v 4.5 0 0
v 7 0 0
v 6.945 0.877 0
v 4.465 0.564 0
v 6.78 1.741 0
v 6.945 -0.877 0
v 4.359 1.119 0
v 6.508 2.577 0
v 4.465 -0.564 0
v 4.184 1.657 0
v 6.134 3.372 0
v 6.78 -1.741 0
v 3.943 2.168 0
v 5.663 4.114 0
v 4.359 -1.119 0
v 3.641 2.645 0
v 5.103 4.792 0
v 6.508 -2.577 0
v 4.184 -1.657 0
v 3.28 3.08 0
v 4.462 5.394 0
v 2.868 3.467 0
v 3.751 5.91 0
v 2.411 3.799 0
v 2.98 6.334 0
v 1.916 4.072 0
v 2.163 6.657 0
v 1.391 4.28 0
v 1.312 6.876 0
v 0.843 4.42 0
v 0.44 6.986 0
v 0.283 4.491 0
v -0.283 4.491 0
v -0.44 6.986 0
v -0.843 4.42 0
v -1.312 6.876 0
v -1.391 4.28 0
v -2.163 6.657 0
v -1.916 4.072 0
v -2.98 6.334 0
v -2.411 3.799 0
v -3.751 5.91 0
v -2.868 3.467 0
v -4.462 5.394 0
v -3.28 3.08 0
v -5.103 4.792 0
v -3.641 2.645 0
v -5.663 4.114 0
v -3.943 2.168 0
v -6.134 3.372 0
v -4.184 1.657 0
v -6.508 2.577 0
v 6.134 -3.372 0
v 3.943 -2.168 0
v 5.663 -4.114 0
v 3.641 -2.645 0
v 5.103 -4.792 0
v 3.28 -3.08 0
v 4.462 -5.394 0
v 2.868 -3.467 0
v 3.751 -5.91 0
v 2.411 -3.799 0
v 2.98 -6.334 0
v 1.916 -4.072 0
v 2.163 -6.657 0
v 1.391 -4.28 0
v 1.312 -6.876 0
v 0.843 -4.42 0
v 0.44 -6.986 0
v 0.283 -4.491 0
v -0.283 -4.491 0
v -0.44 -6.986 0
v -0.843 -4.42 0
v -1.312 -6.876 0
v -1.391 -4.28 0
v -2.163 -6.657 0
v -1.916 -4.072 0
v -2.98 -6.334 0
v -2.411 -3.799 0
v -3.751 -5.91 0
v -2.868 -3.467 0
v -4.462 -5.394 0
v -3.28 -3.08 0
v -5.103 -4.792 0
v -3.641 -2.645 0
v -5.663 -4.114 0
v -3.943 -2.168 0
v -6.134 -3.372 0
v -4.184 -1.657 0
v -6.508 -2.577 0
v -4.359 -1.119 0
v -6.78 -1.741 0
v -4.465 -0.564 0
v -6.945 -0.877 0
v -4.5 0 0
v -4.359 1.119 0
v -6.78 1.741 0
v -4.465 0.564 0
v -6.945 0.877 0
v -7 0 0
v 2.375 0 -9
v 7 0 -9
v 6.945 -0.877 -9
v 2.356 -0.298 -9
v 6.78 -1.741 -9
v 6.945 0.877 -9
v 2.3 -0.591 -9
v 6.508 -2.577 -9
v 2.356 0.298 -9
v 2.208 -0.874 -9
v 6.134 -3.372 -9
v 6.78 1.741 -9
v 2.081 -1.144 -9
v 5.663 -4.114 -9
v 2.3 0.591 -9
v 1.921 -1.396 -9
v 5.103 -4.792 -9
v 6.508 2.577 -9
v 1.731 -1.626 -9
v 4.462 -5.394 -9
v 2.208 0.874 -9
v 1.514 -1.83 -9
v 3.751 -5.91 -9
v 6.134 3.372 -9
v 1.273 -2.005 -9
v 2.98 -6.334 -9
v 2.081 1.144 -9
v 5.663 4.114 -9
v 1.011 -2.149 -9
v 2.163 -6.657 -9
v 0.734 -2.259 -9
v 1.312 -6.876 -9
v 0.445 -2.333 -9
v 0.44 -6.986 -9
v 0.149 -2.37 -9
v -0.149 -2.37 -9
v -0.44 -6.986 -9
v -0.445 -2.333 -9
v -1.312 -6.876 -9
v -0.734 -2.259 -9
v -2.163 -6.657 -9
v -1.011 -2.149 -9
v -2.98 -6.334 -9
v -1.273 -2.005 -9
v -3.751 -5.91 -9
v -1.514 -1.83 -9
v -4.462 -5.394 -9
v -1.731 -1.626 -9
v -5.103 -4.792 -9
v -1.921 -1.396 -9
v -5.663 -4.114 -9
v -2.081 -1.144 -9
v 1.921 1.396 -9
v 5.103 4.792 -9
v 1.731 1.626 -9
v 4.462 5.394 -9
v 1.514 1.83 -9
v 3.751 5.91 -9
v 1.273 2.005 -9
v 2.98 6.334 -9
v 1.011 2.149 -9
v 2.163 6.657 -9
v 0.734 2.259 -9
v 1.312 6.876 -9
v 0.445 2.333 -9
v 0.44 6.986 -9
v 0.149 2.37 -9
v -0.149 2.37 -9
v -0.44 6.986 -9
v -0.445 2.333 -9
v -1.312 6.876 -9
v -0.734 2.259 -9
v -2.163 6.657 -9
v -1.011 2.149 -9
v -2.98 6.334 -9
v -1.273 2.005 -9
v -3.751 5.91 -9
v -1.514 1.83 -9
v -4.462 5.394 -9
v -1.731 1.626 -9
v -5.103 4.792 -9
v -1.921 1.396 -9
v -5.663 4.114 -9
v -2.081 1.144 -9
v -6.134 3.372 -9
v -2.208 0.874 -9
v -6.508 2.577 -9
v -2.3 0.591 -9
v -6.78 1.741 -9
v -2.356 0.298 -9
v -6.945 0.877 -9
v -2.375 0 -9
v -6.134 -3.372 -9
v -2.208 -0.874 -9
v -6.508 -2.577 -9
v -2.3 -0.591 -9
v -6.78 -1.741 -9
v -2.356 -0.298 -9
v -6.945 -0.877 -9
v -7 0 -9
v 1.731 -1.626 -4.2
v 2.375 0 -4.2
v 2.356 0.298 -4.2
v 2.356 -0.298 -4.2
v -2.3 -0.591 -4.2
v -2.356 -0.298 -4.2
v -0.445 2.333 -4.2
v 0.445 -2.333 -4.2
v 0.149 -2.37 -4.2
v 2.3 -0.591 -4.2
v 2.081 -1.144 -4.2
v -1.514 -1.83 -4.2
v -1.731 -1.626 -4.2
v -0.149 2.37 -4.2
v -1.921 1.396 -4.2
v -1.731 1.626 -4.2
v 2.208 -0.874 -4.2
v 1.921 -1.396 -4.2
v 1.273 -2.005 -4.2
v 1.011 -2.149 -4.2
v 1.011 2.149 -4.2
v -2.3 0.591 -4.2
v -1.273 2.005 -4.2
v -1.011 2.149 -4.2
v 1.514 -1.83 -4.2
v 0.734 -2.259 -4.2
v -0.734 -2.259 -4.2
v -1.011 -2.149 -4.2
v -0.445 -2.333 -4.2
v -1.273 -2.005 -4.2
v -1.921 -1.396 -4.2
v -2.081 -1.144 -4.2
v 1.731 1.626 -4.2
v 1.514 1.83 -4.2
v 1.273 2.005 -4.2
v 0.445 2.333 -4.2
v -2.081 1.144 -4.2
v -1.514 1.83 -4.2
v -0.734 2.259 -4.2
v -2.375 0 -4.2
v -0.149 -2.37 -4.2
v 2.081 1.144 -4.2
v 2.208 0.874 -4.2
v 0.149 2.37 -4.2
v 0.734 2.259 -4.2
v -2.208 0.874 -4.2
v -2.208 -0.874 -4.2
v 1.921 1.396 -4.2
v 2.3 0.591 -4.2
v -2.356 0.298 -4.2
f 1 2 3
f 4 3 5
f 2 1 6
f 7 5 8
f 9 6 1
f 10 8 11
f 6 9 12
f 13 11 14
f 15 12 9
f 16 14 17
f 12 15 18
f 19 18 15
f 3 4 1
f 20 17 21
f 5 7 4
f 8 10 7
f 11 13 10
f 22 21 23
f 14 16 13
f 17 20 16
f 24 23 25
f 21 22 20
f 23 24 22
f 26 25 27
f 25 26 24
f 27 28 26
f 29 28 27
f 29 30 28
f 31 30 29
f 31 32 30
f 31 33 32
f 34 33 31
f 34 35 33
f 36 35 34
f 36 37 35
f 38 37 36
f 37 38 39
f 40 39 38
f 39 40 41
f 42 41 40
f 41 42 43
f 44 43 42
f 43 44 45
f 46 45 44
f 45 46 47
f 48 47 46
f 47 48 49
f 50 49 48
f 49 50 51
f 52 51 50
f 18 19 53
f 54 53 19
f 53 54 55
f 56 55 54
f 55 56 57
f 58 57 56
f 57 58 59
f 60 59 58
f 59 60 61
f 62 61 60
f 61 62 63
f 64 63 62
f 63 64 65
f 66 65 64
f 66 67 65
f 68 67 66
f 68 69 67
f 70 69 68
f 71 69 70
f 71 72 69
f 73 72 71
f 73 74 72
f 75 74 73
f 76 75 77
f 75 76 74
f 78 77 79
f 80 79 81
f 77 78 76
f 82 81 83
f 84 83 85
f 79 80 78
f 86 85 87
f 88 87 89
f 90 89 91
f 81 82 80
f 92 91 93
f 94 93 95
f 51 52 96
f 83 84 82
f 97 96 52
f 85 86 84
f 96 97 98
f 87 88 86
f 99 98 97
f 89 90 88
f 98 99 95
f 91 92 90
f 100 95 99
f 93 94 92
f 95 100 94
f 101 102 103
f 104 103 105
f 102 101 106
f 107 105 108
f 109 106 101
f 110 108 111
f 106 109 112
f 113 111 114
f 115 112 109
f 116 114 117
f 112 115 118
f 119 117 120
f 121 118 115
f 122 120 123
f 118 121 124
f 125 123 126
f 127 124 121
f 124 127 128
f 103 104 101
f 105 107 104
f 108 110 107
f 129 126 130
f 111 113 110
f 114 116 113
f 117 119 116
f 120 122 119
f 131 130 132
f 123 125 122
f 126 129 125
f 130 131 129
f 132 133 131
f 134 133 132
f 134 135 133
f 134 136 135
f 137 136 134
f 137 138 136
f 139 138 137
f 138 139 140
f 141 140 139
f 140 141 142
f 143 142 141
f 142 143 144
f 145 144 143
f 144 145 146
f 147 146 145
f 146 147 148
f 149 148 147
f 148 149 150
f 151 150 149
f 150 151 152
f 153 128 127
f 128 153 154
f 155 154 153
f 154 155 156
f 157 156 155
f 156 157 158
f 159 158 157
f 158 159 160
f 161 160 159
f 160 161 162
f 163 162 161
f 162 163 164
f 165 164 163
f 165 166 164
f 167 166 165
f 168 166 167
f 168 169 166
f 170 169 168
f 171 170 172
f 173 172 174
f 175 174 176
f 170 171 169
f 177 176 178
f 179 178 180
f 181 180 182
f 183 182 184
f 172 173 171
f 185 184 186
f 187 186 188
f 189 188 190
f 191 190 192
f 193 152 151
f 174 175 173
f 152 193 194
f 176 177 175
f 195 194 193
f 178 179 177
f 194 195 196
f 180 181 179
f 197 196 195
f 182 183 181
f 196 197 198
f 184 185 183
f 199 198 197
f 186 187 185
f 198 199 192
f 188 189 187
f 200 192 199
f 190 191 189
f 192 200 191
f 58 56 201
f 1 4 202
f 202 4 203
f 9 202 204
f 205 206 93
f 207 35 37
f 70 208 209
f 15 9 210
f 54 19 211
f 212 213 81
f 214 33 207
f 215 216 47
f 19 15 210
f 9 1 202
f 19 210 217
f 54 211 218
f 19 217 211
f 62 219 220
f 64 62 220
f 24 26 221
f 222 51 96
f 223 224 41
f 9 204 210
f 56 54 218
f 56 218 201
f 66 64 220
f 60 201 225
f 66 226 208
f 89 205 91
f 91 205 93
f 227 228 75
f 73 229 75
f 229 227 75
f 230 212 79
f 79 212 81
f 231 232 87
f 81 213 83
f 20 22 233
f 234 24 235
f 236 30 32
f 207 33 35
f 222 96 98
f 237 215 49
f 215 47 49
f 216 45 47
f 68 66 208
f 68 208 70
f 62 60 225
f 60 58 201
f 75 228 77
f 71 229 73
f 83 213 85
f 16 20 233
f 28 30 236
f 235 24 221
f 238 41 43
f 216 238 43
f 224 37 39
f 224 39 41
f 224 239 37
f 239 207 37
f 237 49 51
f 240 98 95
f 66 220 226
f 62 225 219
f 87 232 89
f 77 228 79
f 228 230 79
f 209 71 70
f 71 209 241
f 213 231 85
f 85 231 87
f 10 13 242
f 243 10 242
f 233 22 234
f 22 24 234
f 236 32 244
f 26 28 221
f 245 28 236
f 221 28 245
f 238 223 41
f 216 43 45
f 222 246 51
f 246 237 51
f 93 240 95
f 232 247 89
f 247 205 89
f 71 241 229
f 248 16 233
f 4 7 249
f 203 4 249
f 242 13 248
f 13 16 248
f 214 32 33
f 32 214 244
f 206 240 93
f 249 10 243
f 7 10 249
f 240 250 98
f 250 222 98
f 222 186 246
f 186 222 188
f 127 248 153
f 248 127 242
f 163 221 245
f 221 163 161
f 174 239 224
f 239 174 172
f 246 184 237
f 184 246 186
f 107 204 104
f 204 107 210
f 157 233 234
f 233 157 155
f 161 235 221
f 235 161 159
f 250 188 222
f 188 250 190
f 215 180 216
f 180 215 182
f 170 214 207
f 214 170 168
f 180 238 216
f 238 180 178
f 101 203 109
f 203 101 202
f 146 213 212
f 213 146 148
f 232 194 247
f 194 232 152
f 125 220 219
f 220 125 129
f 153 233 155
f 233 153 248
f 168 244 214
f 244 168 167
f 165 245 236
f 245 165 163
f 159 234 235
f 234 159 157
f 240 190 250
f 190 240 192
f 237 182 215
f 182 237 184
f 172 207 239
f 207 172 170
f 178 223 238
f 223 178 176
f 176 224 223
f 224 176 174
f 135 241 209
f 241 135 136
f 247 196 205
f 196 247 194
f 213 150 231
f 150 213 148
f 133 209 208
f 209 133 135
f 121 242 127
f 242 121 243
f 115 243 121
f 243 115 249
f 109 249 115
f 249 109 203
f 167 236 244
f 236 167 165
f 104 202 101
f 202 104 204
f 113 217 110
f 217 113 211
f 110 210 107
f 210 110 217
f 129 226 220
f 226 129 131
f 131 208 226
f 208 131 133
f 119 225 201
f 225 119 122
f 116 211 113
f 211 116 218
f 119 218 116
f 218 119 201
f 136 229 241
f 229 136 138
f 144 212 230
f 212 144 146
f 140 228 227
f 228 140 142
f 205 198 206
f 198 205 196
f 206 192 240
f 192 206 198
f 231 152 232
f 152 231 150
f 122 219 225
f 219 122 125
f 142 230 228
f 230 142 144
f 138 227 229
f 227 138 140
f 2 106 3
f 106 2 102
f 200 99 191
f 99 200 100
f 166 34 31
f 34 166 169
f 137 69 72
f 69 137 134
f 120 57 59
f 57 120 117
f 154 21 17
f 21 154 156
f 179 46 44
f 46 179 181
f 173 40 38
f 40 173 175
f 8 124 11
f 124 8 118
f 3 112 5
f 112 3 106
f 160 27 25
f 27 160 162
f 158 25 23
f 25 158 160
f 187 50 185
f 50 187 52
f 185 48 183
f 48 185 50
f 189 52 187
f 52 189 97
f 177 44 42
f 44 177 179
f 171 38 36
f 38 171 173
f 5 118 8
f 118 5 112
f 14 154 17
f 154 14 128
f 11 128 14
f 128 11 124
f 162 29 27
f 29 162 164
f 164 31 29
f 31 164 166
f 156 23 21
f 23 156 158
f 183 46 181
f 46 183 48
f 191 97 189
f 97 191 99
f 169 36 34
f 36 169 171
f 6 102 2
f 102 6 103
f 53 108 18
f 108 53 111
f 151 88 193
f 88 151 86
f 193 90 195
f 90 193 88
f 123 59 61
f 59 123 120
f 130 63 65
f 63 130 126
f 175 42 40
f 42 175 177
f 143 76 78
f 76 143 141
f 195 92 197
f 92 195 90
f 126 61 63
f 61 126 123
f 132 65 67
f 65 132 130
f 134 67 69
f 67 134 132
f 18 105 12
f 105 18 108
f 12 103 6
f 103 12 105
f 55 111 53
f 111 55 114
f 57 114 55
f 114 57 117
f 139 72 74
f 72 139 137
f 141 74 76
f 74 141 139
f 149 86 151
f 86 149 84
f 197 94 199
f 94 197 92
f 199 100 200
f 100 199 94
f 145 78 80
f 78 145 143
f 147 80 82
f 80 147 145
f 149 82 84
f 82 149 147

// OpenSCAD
$fn = 50;


difference() {
	union() {
		translate(v = [0, 0, -9.0000000000]) {
			cylinder(h = 9, r = 7.0000000000);
		}
		cylinder(h = 0, r = 13.0000000000);
	}
	union() {
		translate(v = [0, 0, 0]) {
			rotate(a = [0, 0, 0]) {
				difference() {
					union() {
						#translate(v = [0, 0, -9.0000000000]) {
							cylinder(h = 9, r = 2.2500000000);
						}
						#translate(v = [0, 0, -4.2000000000]) {
							cylinder(h = 4.2000000000, r = 7.0000000000, r1 = 2.3750000000, r2 = 4.5000000000);
						}
						#translate(v = [0, 0, -9.0000000000]) {
							cylinder(h = 9, r = 2.3750000000);
						}
						#translate(v = [0, 0, -9.0000000000]) {
							cylinder(h = 9, r = 2.2500000000);
						}
					}
					union();
				}
			}
		}
	}
}
